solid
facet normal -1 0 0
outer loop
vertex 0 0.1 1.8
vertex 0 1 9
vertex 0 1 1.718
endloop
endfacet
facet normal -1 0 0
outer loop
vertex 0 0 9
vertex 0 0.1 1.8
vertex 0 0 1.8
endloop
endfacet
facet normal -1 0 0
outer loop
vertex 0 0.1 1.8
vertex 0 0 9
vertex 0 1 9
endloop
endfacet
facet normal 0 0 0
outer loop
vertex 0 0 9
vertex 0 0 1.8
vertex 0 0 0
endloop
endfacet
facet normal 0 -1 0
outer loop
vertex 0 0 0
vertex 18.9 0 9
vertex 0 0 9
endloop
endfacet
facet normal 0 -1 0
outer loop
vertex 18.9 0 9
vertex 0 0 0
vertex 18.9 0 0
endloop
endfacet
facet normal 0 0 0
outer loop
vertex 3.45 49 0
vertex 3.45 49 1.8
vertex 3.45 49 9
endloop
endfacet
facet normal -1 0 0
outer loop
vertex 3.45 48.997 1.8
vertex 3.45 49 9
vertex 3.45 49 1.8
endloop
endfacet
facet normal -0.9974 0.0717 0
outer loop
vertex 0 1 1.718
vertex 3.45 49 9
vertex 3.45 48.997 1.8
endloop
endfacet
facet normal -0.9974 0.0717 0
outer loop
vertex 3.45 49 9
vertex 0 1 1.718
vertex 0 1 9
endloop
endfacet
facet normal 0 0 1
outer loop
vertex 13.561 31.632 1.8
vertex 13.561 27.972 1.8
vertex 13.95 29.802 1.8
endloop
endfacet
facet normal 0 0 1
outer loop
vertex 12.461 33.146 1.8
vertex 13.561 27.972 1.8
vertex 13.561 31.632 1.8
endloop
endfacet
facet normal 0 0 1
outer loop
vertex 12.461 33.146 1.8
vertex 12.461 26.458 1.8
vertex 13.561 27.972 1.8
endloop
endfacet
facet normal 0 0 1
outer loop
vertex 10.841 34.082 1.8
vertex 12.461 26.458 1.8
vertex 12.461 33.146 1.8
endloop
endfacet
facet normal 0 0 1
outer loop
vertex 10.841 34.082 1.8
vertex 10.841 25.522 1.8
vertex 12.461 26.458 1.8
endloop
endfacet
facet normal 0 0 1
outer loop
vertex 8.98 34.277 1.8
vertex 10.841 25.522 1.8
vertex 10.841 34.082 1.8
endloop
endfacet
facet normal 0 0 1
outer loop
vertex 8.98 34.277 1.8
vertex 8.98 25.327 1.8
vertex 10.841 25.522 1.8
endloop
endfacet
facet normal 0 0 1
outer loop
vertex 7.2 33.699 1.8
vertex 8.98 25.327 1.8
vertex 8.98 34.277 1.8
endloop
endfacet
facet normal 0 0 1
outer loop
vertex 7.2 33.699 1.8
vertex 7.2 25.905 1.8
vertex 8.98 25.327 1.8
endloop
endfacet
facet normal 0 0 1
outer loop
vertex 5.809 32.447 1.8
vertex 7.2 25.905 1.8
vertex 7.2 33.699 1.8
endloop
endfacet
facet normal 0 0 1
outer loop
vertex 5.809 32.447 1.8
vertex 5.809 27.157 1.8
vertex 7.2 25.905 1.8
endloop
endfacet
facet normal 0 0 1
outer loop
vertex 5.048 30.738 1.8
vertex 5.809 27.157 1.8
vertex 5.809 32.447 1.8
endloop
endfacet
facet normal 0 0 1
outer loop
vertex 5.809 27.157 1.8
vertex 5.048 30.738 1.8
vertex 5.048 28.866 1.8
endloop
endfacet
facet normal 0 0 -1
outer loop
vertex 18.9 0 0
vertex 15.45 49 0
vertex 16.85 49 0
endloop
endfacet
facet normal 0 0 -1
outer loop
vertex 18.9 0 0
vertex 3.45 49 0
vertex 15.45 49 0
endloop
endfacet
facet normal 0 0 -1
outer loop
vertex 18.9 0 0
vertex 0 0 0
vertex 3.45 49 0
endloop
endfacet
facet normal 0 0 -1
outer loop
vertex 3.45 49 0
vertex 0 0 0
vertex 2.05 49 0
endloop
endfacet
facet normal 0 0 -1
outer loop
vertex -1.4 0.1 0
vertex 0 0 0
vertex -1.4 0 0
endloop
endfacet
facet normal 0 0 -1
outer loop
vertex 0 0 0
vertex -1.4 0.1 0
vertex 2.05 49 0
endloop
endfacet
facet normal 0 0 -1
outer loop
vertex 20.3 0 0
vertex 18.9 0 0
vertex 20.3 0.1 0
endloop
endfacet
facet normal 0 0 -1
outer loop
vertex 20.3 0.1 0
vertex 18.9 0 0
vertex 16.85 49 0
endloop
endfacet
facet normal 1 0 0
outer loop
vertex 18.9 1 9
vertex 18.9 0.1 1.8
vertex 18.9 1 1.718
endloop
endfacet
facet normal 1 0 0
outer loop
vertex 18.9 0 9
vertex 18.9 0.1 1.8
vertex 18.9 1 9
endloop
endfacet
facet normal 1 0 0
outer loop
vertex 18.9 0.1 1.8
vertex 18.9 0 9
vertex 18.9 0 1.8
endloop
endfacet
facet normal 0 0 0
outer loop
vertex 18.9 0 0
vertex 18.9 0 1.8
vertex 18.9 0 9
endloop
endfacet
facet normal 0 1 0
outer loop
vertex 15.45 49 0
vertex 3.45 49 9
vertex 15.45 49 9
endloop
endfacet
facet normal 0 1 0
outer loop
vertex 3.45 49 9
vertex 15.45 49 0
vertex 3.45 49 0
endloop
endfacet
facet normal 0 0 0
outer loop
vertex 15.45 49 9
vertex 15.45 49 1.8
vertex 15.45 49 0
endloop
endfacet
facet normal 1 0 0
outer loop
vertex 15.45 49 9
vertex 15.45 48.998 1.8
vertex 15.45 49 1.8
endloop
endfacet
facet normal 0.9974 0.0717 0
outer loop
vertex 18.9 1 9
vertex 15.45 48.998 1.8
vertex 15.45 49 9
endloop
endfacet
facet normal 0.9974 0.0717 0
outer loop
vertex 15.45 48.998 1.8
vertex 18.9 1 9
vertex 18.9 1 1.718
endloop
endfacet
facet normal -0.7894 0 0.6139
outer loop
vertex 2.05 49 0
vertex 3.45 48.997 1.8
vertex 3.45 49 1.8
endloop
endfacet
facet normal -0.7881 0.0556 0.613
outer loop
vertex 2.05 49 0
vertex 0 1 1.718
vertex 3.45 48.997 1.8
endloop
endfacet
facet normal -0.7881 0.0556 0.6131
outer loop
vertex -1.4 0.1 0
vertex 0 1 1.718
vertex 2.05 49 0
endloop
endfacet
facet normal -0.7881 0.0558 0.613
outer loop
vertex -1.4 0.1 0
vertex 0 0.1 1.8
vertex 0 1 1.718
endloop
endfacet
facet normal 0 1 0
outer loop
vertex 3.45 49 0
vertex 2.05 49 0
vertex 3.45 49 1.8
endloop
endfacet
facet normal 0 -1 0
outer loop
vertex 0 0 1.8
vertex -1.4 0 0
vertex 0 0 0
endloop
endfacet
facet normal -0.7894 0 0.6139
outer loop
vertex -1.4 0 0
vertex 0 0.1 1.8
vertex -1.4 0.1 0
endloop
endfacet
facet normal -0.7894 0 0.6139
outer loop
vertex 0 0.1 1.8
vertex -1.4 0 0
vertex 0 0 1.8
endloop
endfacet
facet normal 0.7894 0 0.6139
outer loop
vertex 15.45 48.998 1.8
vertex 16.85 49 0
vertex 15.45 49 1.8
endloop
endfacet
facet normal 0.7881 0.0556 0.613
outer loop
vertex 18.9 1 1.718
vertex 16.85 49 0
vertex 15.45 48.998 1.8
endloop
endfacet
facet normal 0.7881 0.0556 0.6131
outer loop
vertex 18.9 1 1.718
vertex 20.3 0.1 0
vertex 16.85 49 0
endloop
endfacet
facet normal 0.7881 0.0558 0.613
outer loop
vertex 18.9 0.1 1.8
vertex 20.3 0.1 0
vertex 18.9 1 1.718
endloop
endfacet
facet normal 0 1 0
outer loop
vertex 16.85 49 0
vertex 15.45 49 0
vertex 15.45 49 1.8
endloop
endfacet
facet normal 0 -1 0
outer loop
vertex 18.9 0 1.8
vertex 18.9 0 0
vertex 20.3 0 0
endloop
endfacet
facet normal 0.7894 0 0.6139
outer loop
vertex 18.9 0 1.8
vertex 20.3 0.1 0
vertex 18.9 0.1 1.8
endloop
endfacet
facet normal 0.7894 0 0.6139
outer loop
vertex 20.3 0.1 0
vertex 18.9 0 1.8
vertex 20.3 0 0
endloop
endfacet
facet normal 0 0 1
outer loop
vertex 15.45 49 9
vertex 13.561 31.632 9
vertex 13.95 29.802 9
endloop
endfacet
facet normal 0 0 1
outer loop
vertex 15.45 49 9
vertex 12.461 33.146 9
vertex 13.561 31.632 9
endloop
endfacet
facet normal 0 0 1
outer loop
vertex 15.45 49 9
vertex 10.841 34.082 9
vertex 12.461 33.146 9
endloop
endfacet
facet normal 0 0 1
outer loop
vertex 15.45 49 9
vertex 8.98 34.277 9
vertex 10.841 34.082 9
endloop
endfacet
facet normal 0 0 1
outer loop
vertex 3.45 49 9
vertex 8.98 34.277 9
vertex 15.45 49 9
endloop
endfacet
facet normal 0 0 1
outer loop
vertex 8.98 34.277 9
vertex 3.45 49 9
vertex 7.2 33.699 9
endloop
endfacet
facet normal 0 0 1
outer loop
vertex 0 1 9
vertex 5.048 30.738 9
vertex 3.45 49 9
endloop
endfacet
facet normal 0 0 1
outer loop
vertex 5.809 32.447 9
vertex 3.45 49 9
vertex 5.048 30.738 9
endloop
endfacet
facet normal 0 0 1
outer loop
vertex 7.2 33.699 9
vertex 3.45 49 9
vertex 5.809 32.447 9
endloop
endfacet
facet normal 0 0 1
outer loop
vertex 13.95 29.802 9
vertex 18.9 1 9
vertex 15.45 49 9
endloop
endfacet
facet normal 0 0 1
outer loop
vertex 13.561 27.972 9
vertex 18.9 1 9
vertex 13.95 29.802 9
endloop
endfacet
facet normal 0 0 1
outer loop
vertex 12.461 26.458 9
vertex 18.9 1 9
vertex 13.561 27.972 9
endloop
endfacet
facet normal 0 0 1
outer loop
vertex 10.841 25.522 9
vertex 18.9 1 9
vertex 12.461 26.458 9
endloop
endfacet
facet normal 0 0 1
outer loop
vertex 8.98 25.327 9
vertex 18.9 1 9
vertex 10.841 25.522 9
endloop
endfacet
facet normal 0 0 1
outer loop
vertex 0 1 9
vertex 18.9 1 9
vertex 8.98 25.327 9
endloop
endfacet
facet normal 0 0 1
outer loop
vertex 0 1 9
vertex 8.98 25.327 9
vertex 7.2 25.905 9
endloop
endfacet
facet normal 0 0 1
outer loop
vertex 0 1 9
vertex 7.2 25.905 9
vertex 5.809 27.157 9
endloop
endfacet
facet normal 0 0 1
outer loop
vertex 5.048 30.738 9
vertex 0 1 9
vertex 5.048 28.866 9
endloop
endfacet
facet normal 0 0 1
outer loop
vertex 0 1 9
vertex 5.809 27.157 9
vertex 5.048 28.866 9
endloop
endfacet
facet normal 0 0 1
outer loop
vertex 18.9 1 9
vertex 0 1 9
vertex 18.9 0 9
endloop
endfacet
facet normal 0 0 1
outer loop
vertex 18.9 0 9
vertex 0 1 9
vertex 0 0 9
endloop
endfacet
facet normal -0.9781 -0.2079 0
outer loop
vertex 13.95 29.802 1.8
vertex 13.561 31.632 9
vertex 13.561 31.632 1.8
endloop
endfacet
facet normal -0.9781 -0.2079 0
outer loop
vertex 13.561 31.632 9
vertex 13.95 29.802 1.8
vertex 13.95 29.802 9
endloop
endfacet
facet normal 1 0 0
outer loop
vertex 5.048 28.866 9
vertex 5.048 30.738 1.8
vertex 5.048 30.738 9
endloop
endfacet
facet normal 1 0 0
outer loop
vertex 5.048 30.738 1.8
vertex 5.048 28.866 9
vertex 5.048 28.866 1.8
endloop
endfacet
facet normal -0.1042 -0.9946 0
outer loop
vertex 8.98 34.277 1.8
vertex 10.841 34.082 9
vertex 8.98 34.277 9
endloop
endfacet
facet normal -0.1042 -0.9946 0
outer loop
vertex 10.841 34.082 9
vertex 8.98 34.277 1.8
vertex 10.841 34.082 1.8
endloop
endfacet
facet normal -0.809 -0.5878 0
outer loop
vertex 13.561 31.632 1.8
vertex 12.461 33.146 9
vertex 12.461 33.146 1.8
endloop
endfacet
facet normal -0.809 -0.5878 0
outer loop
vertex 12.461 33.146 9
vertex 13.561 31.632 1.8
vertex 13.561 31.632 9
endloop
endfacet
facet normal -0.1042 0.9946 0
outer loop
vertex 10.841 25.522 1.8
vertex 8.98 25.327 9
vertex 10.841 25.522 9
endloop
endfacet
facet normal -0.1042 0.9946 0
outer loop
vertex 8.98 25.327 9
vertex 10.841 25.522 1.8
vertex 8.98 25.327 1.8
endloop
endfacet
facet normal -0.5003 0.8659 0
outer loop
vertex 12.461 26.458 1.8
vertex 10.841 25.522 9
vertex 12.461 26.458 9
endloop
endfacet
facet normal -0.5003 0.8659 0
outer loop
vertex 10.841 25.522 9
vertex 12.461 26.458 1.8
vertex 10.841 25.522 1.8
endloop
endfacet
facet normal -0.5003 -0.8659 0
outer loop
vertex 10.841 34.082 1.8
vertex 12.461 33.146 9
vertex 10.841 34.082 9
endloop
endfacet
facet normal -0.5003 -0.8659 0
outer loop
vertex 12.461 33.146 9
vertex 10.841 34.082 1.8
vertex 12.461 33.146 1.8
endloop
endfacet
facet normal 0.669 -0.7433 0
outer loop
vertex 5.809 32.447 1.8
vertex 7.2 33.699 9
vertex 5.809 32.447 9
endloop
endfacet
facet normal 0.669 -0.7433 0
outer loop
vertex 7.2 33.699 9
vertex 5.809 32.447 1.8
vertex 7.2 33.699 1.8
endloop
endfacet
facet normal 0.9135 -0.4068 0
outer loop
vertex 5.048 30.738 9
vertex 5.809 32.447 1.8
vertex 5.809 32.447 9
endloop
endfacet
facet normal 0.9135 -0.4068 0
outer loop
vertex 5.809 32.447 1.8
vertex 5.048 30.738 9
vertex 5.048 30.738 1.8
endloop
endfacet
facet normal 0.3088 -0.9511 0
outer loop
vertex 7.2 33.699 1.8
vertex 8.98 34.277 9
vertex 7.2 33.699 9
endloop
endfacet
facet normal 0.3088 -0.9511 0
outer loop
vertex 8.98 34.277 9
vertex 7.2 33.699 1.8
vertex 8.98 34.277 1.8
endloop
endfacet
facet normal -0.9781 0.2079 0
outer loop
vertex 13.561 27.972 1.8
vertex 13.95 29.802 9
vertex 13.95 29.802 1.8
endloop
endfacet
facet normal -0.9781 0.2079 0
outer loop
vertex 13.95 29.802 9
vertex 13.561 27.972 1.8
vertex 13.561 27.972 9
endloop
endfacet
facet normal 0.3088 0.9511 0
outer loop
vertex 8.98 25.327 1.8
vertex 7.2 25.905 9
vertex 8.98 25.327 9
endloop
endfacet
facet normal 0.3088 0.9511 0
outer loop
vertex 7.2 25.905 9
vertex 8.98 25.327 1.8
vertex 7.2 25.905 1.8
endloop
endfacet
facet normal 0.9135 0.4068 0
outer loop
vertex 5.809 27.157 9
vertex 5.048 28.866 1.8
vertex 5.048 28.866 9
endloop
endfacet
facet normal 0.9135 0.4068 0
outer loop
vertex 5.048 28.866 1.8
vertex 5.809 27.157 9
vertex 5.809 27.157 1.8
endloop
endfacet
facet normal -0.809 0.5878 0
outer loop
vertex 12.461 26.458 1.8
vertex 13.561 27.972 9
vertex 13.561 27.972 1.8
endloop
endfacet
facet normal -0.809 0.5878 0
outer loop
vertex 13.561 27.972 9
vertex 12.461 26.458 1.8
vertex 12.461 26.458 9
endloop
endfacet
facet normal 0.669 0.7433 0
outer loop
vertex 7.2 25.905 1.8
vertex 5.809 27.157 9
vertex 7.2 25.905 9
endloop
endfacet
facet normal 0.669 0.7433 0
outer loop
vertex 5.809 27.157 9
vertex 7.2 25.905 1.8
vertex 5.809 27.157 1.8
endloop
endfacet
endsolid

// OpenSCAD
include <threads.scad>

//width of the narrow side
$start_width = 18.9;
//width of the wider side
$end_width = 12;

$diff_width = $start_width - $end_width;
//depth of the whole plate
$depth = 49;
// height of the base plate
$height = 1.8;
//width of the outer diagonal slide
$diag_width=1.4;

// height of the threading
$thread_h = 9;
// margin around the threading
$thread_margin = 4;
// position of thread in percent
$thread_pos = 0.5;
// thread diameter in inch
$thread_d = 0.26;
// thread hole diameter in mm
$thread_hole_d=9;

$thread_hole = false;

function zoll2mm(d=0.25) = d*25.4;
function mm2zoll(d=0.25) = d/25.4;

module diag($invert = false) {
    $rdw = $diag_width/2;
    translate([-$rdw,0.1,0]) {
        rotate([90,0,0]) {
            linear_extrude(height=0.1) {
                    if ($invert == false) {
                        polygon(points = [ [-$rdw, 0], [$rdw,0],[$rdw,$height],[-$rdw,0]], convexity = 10);
                    } else {
                        polygon(points = [ [$rdw, 0], [-$rdw,0],[-$rdw,$height],[$rdw,0]], convexity = 10);
                    }
            }
        }
    }
}

module base_plate($h=$height) {
    hull () {
        cube([$start_width,1,$h]);
        translate([$diff_width/2,$depth-1,0]) {
            cube([$end_width,1,$h]);
        }
    }
}

module push_plate() {
    base_plate();
    hull() {
        diag();
        translate([$diff_width/2,$depth-0.1,0]) {
            diag();
        }
    }
    hull() {
        translate([$start_width+$diag_width,0,0]) {
            diag(true);
        }
        translate([$diff_width/2+$end_width+$diag_width,$depth-0.1,0]) {
            diag(true);
        }
    }
}


module thread() {
    $cw = zoll2mm($thread_d)+$thread_margin;
        difference() {
            base_plate($thread_h);
            translate([$start_width/2-$cw/2,$depth*$thread_pos,$height]) {
                translate([$cw/2,$cw/2,-0.1]) {
                    if ($thread_hole == true) {
                        english_thread (diameter=$thread_d,length=mm2zoll($thread_h+0.2)); 
                    } else {
                            cylinder(d=$thread_hole_d,h=$thread_h);
                    }
                }
            }
        }
}

module tripod_mount() {
    push_plate();
    thread();
}


tripod_mount();
